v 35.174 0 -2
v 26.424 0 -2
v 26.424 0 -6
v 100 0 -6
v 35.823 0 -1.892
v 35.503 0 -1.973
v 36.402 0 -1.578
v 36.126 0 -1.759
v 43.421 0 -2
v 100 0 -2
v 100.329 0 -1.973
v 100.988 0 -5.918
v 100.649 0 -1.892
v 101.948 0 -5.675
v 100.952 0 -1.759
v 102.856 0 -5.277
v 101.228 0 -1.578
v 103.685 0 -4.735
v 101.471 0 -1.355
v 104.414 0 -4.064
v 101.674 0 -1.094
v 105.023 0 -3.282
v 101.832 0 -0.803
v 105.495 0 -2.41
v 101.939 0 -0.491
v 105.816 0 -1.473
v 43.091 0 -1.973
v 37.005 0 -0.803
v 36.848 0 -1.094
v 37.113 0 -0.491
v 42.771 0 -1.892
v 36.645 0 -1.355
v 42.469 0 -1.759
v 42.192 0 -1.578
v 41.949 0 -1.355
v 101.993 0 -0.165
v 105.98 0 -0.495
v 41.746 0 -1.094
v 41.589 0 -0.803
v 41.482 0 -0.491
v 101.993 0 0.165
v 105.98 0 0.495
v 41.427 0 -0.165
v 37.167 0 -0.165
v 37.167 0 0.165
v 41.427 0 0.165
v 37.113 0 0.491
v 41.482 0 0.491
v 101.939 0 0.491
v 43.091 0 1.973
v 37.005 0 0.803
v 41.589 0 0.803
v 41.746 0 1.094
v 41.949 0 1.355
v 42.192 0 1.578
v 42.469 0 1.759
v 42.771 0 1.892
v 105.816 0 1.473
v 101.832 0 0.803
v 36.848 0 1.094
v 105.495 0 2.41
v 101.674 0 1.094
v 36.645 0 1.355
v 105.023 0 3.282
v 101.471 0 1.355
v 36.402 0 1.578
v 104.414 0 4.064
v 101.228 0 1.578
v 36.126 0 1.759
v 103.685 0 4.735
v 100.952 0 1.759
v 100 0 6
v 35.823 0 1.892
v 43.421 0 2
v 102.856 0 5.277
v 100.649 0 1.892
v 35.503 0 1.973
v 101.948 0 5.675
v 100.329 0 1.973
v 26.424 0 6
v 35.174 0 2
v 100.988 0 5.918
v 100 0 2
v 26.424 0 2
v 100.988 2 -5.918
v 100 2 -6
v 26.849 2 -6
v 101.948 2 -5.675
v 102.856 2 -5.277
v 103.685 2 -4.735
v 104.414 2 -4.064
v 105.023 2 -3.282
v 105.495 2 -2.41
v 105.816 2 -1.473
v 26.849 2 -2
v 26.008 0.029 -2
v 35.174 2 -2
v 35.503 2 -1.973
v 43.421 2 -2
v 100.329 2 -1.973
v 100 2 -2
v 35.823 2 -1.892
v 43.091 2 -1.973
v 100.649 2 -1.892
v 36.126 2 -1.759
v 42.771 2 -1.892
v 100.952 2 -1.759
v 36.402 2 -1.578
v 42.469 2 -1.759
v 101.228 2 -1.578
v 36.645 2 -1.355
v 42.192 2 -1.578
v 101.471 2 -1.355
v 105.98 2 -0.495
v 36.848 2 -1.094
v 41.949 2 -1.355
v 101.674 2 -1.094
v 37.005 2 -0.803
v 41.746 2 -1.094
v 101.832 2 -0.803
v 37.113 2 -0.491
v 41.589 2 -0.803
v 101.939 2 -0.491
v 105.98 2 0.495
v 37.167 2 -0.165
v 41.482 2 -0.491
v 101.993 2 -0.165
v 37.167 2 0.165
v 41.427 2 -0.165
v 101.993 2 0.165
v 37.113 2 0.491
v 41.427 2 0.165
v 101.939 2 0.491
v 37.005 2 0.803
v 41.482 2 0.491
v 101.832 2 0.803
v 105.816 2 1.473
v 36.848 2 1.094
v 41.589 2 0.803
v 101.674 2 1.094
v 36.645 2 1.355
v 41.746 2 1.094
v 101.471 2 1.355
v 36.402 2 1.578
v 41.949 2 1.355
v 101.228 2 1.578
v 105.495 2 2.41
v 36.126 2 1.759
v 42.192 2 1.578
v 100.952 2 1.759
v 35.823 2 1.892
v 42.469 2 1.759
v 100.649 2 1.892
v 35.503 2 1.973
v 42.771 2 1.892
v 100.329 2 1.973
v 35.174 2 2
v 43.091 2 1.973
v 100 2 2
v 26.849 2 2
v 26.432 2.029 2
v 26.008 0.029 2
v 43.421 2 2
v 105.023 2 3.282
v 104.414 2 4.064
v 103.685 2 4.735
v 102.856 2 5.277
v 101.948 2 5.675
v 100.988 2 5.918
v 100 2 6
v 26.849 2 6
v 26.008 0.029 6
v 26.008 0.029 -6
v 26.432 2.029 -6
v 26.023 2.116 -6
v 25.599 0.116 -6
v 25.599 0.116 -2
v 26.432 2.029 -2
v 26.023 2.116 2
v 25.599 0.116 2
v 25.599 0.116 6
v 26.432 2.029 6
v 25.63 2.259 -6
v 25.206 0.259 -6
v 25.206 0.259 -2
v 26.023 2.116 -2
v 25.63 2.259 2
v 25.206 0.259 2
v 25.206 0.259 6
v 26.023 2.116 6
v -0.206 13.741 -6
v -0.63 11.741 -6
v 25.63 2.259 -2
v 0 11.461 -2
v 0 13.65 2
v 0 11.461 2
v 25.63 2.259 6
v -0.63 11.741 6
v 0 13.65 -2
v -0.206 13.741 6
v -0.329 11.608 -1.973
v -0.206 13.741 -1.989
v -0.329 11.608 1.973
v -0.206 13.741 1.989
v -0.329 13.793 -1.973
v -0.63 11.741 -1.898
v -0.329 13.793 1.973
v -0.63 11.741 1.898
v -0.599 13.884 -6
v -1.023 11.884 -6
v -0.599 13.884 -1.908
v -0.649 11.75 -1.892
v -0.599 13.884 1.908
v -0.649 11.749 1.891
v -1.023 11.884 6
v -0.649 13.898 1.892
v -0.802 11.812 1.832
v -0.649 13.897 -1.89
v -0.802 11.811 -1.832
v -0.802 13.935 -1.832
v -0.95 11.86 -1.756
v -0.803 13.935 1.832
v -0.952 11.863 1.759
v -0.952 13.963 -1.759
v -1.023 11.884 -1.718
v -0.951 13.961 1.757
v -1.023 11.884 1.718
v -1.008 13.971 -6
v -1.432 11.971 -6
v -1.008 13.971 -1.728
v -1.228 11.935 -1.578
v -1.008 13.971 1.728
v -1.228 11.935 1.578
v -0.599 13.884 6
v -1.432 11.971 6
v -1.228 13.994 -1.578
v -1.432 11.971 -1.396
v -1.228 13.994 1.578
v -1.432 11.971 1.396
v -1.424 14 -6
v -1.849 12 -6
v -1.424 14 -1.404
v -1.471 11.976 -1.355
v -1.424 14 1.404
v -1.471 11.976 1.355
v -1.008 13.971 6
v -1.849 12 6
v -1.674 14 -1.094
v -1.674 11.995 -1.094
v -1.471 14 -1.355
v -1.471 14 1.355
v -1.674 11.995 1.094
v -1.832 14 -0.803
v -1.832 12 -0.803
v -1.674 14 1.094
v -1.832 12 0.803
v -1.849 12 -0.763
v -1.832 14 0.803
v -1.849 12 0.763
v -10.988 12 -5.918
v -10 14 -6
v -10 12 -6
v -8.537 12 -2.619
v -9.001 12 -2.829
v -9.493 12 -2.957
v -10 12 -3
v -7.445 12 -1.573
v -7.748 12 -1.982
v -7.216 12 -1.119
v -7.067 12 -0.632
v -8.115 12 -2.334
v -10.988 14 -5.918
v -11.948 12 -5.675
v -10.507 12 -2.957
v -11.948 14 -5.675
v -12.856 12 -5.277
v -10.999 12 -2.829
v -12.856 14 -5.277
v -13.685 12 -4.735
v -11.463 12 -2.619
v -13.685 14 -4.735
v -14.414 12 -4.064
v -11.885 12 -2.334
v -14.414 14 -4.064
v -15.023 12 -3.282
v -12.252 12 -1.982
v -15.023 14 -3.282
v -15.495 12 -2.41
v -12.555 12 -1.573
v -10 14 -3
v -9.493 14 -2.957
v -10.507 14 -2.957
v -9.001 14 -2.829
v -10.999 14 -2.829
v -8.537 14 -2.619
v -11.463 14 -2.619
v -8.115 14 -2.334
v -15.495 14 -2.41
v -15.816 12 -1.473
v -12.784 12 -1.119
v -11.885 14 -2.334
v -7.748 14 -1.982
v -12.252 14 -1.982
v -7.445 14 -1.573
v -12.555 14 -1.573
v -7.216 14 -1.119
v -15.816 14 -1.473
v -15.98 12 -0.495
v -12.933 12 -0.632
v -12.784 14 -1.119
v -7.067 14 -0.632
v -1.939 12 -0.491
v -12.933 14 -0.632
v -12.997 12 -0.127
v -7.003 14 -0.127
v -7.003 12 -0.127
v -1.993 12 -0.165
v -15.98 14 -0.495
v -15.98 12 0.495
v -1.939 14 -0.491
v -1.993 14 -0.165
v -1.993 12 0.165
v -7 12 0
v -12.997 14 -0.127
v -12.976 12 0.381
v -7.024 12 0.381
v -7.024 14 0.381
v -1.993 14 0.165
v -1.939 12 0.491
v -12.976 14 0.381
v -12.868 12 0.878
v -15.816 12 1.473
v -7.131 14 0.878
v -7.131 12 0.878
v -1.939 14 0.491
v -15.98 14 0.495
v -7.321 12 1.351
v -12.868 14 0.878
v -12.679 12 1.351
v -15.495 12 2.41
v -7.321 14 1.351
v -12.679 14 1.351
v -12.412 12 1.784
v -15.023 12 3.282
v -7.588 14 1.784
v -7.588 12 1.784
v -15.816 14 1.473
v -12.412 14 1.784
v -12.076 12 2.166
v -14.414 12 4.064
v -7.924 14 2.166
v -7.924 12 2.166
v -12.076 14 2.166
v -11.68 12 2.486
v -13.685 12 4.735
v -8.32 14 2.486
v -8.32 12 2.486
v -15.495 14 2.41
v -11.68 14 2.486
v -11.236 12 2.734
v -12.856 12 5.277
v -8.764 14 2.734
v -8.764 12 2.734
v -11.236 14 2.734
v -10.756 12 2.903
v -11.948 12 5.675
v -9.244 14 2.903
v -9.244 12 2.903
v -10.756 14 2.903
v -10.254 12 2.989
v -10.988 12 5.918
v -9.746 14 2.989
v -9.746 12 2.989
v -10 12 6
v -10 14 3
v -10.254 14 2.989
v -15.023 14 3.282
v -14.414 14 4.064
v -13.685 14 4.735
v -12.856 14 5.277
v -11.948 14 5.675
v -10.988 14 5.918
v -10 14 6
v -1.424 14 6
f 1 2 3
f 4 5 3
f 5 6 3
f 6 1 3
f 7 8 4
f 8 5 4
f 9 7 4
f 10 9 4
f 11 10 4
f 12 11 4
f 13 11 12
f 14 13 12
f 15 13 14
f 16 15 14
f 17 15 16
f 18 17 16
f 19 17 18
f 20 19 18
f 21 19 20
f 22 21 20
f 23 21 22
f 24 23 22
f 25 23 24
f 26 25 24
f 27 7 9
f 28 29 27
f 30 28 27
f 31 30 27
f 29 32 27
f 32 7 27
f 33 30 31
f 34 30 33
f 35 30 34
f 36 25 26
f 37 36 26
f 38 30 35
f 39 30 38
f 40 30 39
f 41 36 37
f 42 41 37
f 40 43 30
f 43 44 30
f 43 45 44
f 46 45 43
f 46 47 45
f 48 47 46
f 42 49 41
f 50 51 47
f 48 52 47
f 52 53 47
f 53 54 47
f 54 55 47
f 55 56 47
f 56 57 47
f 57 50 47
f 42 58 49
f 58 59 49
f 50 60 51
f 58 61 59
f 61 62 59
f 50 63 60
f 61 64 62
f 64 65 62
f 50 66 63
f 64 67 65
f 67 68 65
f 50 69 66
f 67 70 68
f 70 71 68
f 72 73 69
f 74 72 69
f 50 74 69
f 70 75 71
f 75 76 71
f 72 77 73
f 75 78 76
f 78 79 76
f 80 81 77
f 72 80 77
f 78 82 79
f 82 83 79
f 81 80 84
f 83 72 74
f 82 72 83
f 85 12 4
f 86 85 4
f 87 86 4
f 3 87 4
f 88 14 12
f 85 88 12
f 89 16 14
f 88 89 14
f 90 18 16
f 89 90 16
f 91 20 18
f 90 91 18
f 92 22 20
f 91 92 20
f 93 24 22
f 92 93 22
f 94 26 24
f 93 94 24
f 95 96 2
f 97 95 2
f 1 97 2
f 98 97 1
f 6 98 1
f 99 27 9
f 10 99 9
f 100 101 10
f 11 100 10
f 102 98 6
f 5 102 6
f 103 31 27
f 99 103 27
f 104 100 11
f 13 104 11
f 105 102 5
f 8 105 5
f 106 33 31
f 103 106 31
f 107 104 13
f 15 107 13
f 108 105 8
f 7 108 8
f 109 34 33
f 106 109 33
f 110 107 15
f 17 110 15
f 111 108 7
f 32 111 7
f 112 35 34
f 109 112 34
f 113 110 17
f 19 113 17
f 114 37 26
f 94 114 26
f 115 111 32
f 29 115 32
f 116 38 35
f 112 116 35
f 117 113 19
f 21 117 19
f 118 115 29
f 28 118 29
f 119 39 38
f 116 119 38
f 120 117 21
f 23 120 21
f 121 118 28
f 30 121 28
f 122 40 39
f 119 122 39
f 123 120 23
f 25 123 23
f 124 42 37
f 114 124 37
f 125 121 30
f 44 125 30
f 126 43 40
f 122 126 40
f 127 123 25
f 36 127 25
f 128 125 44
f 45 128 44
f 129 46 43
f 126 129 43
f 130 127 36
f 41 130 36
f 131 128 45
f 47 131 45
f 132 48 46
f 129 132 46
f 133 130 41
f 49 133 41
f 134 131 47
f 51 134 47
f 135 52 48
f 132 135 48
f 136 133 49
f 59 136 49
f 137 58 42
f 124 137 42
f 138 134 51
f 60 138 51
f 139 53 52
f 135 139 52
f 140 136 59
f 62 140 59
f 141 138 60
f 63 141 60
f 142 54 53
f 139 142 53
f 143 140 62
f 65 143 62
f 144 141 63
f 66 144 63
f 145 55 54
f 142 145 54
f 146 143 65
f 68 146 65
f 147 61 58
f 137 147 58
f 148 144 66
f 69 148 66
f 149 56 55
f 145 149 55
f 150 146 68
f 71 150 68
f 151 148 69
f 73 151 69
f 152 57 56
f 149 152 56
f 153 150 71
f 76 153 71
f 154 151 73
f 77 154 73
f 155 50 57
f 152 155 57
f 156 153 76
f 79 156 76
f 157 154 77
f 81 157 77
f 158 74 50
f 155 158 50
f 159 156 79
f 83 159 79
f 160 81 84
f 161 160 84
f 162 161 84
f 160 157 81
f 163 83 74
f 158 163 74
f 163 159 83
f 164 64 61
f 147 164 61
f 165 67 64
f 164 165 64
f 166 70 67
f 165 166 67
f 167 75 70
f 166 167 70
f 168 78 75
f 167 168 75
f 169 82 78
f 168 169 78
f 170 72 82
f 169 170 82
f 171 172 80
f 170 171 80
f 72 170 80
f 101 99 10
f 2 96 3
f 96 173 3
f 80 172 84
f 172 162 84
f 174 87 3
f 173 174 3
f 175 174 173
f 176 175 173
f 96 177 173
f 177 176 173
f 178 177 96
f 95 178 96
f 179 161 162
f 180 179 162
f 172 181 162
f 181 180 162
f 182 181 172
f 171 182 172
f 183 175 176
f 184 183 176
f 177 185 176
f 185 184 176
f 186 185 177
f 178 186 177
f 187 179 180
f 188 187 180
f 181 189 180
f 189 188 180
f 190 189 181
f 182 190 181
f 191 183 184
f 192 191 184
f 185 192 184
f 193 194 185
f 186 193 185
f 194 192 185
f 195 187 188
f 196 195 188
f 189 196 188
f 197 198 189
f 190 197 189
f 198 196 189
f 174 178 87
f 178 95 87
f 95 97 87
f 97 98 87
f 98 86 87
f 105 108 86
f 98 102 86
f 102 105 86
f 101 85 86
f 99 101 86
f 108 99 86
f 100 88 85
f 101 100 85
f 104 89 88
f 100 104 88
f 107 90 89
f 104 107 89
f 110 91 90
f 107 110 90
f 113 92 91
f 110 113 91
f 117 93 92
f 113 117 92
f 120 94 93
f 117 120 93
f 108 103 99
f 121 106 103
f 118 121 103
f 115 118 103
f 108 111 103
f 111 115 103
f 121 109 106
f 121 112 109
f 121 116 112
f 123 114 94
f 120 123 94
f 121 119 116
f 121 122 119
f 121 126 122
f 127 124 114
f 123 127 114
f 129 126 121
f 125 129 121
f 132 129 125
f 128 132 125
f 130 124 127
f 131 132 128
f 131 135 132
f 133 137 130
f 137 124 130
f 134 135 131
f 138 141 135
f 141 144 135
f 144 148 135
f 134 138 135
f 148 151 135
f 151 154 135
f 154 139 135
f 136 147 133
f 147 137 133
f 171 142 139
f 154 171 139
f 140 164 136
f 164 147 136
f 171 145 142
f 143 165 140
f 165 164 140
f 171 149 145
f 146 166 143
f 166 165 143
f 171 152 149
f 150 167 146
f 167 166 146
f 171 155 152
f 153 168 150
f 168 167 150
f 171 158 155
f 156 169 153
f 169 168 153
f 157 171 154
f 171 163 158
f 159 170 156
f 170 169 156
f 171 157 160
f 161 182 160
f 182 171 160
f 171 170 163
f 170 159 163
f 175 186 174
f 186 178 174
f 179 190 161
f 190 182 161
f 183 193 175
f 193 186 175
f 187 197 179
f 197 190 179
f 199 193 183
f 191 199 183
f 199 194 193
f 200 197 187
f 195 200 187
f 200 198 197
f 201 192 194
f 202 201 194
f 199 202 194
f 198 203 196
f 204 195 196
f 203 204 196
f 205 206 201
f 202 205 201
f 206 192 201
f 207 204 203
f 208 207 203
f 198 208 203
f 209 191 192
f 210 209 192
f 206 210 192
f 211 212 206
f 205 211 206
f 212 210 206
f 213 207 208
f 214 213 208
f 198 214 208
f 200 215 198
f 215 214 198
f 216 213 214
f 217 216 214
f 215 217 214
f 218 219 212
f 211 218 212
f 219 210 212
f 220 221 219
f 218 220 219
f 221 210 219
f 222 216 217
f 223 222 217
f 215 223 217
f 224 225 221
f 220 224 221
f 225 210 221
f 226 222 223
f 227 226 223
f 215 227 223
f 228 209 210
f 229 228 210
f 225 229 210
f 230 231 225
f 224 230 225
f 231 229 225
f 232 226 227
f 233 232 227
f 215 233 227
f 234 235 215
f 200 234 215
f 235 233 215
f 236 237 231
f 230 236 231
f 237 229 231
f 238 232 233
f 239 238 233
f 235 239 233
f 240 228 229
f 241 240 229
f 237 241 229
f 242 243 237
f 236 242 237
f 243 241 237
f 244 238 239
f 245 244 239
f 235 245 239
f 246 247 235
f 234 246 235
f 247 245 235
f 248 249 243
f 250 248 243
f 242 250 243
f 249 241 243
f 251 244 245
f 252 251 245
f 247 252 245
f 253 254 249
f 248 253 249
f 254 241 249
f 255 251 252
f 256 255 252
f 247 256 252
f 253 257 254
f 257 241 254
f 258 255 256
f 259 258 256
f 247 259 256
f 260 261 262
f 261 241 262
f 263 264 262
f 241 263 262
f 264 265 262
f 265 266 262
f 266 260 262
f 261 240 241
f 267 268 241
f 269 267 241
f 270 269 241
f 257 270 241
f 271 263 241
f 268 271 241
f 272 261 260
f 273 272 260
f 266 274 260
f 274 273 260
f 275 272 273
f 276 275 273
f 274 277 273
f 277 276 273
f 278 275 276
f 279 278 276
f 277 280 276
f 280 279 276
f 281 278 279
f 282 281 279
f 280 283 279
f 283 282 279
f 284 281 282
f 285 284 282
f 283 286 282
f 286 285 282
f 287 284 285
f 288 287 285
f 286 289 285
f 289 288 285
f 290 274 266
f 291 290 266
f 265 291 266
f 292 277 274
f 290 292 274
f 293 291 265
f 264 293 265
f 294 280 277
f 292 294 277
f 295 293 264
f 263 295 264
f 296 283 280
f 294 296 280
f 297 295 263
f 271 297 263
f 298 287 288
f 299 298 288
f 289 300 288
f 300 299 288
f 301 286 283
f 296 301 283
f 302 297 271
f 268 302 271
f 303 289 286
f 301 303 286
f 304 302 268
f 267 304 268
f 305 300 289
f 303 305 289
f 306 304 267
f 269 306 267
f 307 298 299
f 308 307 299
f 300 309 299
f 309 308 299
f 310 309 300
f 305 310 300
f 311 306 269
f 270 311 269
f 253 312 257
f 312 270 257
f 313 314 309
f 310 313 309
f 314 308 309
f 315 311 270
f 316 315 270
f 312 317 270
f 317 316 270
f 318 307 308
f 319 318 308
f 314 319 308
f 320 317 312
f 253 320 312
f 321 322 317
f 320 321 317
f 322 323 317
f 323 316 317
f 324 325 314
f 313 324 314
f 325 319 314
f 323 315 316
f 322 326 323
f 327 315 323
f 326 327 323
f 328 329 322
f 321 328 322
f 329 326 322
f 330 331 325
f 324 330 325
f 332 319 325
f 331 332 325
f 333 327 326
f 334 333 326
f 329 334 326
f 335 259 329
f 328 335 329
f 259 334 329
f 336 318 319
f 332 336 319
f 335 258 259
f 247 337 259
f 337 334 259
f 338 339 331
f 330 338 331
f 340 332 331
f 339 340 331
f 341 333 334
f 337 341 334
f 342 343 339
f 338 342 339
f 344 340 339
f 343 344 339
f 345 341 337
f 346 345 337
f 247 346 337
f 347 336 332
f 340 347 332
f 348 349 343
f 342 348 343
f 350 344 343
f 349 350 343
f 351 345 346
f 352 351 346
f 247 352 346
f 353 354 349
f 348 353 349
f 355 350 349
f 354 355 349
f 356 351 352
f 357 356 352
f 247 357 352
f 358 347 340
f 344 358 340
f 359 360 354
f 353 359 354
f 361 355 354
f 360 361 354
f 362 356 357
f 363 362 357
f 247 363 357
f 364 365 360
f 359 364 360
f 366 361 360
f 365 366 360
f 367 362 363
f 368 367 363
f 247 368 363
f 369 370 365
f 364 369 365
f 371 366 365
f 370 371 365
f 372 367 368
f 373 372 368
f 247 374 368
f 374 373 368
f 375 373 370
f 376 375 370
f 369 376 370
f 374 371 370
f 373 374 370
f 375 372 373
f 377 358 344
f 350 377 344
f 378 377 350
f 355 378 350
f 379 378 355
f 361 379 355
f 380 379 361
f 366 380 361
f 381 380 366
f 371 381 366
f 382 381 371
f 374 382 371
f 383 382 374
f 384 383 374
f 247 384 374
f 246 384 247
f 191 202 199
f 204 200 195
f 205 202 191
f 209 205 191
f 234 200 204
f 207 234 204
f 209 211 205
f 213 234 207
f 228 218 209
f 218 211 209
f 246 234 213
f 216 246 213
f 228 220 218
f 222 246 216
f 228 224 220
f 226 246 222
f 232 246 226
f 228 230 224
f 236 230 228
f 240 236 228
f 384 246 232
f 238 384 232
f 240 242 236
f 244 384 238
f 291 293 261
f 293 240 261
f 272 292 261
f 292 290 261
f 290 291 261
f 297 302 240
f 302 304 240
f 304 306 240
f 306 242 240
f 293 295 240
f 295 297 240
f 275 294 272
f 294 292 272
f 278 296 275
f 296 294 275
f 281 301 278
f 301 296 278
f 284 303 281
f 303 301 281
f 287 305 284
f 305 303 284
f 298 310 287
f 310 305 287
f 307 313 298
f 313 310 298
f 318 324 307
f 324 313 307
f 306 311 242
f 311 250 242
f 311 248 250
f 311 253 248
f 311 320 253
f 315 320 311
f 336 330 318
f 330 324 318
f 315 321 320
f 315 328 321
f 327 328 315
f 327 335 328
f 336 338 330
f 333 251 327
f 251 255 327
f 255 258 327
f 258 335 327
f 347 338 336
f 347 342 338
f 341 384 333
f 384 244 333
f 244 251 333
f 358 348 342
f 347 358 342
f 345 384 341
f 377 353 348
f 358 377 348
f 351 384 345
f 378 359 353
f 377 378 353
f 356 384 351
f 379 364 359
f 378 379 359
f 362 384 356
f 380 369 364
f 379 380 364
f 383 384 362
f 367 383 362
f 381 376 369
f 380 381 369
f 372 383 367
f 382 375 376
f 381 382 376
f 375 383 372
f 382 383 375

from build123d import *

# Parameters (mm, degrees)
SKETCH1_R           = 3
BOSS_EXTRUDE1_DEPTH = 14
SKETCH2_W           = 6
SKETCH2_H           = 12
CUT_EXTRUDE1_DEPTH  = 108.591821251


with BuildPart() as part:
    # Sketch1 → Boss-Extrude1 (new body)
    # profile 1 of 2: a face of its own
    with BuildSketch(Plane(origin=(0, 0, 0), x_dir=(1, 0, 0), z_dir=(0, 1, 0))):
        with BuildLine():
            Line((100, 6), (-10, 6))
            ThreePointArc((-10, 6), (-16, 0), (-10, -6))
            Line((-10, -6), (100, -6))
            ThreePointArc((100, -6), (106, 0), (100, 6))
        make_face()
        with Locations(Location((-10, 0, 0), (0, 0, 90))):
            Circle(SKETCH1_R, mode=Mode.SUBTRACT)
        with BuildLine():
            ThreePointArc((100, -2), (102, 0), (100, 2))
            Line((100, 2), (0, 2))
            ThreePointArc((0, 2), (-2, 0), (0, -2))
            Line((0, -2), (100, -2))
        make_face(mode=Mode.SUBTRACT)
    # profile 2 of 2: a face of its own
    with BuildSketch(Plane(origin=(0, 0, 0), x_dir=(1, 0, 0), z_dir=(0, 1, 0))):
        with BuildLine():
            Line((43.420617055, 2), (35.173899985, 2))
            ThreePointArc((35.173899985, 2), (37.173899985, 0), (35.173899985, -2))
            Line((35.173899985, -2), (43.420617055, -2))
            ThreePointArc((43.420617055, -2), (41.420617055, 0), (43.420617055, 2))
        make_face()
    extrude(amount=BOSS_EXTRUDE1_DEPTH)

    # Sketch2 → Cut-Extrude1 (cut, through all)
    with BuildSketch(Plane.XY.offset(6)):
        with BuildLine():
            Line((-10, 0), (26.424428901, 0))
            ThreePointArc((26.424428901, 0), (25.801654438, 0.065353178), (25.206013503, 0.258565354))
            Line((25.206013503, 0.258565354), (-0.630442404, 11.741434646))
            ThreePointArc((-0.630442404, 11.741434646), (-1.226083339, 11.934646822), (-1.848857802, 12))
            Line((-1.848857802, 12), (-10, 12))
            Line((-10, 12), (-10, 0))
        make_face()
        with BuildLine():
            Line((26.848857802, 2), (100, 2))
            Line((100, 2), (100, 14))
            Line((100, 14), (-1.424428901, 14))
            ThreePointArc((-1.424428901, 14), (-0.801654438, 13.934646822), (-0.206013503, 13.741434646))
            Line((-0.206013503, 13.741434646), (25.630442404, 2.258565354))
            ThreePointArc((25.630442404, 2.258565354), (26.226083339, 2.065353178), (26.848857802, 2))
        make_face()
        with Locations((103, 8)):
            Rectangle(SKETCH2_W, SKETCH2_H)
        with Locations((-13, 6)):
            Rectangle(SKETCH2_W, SKETCH2_H)
    extrude(amount=-CUT_EXTRUDE1_DEPTH, mode=Mode.SUBTRACT)


solid = part.part
